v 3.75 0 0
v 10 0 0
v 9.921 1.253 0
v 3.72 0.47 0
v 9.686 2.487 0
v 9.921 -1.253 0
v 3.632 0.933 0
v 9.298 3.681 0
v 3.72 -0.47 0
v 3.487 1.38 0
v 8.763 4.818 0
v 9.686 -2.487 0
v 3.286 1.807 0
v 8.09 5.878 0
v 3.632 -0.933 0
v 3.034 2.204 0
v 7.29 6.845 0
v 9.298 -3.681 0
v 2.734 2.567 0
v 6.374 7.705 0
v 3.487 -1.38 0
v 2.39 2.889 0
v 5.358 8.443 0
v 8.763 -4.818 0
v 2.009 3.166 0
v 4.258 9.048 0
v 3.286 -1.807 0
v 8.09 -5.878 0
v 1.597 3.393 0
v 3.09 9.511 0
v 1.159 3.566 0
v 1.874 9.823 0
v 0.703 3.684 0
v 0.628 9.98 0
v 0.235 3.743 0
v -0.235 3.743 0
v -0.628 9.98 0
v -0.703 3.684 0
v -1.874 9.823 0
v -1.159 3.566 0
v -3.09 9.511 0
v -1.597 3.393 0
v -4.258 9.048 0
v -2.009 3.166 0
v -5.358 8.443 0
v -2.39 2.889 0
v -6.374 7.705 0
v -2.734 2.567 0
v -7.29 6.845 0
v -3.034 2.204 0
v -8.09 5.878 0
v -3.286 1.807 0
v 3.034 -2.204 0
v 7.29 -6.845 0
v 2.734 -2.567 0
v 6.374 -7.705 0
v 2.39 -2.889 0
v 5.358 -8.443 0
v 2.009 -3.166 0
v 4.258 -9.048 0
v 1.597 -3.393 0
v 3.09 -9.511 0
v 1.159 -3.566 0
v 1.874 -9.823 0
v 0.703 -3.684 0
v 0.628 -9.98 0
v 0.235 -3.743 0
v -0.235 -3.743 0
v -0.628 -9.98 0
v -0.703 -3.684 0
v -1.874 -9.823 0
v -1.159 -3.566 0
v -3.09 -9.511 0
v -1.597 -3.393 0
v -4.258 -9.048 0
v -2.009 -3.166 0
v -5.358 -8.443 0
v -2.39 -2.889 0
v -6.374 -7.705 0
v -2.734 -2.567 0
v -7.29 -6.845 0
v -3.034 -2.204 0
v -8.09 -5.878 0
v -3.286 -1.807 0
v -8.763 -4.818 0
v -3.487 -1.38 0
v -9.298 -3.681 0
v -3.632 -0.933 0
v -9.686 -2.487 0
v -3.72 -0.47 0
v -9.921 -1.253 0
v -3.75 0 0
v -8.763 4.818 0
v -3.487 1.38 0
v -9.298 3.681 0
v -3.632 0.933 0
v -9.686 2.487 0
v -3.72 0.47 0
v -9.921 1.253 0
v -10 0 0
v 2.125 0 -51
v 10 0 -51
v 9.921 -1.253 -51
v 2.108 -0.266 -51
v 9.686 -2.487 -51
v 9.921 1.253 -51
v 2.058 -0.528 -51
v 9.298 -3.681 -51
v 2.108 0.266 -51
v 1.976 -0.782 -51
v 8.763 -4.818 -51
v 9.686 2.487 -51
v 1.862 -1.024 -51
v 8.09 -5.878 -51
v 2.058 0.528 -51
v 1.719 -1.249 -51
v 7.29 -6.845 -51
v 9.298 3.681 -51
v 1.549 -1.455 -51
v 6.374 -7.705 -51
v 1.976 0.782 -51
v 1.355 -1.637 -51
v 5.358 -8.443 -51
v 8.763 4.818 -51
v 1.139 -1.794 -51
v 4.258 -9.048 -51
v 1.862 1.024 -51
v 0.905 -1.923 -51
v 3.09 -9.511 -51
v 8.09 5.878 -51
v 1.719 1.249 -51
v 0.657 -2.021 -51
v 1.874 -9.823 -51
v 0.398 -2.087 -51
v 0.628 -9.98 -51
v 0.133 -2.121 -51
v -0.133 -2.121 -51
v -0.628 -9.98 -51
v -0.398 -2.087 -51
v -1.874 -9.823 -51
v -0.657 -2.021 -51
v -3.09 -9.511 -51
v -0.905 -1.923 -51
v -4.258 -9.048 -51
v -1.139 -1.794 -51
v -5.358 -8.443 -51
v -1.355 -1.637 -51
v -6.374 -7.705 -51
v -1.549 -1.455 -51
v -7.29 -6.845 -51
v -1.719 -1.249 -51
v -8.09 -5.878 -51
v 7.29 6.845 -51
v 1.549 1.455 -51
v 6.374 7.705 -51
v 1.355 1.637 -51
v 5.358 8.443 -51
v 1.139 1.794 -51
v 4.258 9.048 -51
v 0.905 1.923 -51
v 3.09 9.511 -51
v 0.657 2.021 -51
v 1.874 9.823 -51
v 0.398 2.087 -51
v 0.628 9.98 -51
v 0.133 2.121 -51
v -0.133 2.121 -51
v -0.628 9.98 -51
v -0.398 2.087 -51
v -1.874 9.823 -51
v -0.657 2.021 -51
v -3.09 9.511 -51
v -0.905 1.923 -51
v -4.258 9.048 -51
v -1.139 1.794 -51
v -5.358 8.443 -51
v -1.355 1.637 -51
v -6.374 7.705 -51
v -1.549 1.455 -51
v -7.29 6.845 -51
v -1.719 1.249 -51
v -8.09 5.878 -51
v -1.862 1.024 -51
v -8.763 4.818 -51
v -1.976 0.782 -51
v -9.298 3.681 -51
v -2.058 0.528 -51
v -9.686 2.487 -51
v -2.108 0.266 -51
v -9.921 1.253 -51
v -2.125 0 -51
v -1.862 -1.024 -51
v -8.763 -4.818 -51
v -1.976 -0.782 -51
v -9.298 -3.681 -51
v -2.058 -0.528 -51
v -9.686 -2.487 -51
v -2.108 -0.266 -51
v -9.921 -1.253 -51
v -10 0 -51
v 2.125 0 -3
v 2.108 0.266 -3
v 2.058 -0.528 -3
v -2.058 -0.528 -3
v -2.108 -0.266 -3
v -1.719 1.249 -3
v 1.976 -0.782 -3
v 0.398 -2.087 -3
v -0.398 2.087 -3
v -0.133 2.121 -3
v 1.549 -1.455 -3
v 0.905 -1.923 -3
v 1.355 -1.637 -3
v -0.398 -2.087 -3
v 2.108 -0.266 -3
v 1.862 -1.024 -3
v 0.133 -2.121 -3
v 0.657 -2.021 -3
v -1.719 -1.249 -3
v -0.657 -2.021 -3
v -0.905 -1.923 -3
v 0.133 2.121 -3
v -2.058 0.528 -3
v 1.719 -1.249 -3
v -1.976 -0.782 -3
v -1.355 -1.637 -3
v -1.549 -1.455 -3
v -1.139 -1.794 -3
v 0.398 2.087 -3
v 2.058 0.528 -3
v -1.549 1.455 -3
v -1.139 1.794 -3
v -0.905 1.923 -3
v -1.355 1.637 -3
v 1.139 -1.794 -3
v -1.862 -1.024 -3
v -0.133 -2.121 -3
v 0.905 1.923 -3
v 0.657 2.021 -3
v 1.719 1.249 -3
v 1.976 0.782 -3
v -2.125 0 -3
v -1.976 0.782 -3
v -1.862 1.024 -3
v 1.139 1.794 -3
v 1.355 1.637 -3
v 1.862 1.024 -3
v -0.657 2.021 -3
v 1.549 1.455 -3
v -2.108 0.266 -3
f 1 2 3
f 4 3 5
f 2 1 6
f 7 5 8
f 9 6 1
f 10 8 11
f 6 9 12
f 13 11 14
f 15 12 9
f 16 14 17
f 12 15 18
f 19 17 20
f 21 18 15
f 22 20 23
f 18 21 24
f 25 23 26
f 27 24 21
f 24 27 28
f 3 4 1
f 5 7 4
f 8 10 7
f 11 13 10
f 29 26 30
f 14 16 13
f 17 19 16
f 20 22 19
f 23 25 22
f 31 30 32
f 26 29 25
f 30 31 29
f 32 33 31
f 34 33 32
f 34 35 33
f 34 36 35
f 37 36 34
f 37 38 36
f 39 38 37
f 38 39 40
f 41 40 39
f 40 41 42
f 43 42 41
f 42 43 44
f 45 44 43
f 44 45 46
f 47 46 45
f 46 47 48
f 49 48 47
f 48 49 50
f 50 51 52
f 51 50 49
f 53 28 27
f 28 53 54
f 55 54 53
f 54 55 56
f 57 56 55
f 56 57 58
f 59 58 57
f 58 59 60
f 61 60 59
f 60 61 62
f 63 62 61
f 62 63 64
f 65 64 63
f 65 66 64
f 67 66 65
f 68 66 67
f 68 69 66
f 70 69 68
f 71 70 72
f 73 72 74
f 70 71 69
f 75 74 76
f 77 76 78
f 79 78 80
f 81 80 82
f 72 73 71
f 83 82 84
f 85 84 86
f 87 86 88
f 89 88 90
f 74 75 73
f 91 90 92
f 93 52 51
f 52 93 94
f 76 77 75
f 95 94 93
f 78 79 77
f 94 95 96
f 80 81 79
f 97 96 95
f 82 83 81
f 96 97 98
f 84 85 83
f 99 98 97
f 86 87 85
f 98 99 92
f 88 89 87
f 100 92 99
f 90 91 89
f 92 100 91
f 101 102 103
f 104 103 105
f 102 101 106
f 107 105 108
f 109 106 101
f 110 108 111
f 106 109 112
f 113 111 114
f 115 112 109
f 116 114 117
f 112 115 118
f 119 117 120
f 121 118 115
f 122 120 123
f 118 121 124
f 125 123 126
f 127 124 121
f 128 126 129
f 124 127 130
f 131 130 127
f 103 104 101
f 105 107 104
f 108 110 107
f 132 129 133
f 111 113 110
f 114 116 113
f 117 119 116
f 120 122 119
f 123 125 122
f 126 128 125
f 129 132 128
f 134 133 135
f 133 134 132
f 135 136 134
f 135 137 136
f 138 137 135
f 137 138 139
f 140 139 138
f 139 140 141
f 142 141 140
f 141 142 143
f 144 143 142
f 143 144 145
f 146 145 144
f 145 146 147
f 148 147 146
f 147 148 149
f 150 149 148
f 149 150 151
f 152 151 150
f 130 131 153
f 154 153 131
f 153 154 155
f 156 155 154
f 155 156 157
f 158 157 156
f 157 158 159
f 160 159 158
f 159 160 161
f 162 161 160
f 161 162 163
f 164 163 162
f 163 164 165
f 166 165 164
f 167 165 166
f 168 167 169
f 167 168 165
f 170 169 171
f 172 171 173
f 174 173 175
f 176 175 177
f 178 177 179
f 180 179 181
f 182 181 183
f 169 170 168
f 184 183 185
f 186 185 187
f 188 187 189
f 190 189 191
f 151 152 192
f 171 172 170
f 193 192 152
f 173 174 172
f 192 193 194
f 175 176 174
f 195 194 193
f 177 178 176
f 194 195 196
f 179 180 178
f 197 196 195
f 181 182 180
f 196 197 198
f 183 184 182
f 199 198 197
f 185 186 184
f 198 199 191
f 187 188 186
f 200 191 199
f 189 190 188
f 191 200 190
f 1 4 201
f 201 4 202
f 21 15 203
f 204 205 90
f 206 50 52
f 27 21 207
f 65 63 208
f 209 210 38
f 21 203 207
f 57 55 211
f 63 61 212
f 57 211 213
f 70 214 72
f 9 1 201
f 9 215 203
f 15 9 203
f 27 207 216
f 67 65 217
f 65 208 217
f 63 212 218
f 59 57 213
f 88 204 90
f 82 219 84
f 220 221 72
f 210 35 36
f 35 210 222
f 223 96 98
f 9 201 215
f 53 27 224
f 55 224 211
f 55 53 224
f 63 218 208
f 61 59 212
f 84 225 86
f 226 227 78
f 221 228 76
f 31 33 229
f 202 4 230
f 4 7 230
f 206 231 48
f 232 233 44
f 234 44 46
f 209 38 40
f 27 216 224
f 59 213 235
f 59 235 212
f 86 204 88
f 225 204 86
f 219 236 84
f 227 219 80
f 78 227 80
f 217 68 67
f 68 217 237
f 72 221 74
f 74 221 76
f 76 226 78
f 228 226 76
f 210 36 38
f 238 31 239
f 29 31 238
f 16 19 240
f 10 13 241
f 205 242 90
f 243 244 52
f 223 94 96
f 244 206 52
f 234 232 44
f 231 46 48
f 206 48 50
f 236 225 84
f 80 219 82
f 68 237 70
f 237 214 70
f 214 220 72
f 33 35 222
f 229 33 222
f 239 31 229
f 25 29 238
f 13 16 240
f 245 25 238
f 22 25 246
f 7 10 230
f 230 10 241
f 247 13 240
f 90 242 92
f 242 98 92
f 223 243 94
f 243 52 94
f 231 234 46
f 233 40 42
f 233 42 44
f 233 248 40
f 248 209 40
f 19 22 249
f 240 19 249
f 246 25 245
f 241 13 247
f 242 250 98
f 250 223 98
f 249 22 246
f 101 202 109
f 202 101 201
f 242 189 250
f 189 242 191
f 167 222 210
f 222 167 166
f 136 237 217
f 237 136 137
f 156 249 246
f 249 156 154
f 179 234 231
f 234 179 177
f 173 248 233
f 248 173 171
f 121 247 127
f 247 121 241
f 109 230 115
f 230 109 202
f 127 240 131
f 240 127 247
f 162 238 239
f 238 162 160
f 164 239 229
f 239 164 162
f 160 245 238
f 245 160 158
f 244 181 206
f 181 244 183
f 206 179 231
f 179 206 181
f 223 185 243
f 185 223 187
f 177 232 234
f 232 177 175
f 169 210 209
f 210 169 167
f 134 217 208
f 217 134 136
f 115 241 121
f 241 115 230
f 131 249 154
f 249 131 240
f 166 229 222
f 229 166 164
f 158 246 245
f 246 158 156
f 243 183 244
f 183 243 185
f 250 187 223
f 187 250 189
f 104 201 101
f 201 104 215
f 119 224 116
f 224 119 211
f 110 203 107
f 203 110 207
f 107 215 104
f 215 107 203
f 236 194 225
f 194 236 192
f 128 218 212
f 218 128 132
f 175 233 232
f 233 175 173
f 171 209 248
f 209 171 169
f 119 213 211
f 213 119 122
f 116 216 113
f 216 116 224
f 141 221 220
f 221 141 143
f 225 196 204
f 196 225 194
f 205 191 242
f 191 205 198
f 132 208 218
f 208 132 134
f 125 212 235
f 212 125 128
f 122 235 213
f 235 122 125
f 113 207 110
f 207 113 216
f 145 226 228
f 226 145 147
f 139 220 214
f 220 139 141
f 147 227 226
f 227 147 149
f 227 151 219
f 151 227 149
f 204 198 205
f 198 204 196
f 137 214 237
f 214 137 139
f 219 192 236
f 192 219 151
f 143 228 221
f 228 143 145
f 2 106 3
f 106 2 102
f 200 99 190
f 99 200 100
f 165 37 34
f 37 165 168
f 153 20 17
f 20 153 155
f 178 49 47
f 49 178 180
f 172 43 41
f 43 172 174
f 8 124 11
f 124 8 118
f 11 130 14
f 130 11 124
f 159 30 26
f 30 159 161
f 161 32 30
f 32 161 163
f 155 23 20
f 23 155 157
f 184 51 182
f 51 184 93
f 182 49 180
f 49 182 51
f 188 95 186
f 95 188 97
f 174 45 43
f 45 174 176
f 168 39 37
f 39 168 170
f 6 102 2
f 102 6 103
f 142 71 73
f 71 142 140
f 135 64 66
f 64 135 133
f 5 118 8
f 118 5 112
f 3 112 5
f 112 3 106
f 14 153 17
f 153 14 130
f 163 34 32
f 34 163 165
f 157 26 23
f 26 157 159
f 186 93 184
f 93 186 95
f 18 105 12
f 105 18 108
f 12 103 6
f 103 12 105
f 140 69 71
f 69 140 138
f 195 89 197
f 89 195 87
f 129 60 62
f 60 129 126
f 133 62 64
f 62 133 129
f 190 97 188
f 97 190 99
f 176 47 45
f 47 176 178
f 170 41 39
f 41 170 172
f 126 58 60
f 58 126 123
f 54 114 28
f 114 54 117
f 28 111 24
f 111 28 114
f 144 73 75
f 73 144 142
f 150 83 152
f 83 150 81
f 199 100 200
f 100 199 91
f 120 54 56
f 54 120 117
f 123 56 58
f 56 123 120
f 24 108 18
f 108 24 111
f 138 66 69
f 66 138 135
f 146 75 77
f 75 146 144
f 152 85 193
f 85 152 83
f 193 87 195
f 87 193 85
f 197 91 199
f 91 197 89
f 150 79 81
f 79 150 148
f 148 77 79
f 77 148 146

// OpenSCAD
$fn = 50;


difference() {
	union() {
		translate(v = [0, 0, -51.0000000000]) {
			cylinder(h = 51, r = 10.0000000000);
		}
		cylinder(h = 0, r = 16.0000000000);
	}
	union() {
		translate(v = [0, 0, 0]) {
			rotate(a = [0, 0, 0]) {
				difference() {
					union() {
						#translate(v = [0, 0, -51.0000000000]) {
							cylinder(h = 51, r = 2.0000000000);
						}
						#translate(v = [0, 0, -3]) {
							cylinder(h = 3, r = 10.0000000000, r1 = 2.1250000000, r2 = 3.7500000000);
						}
						#translate(v = [0, 0, -51.0000000000]) {
							cylinder(h = 51, r = 2.1250000000);
						}
						#translate(v = [0, 0, -51.0000000000]) {
							cylinder(h = 51, r = 2.0000000000);
						}
					}
					union();
				}
			}
		}
	}
}
